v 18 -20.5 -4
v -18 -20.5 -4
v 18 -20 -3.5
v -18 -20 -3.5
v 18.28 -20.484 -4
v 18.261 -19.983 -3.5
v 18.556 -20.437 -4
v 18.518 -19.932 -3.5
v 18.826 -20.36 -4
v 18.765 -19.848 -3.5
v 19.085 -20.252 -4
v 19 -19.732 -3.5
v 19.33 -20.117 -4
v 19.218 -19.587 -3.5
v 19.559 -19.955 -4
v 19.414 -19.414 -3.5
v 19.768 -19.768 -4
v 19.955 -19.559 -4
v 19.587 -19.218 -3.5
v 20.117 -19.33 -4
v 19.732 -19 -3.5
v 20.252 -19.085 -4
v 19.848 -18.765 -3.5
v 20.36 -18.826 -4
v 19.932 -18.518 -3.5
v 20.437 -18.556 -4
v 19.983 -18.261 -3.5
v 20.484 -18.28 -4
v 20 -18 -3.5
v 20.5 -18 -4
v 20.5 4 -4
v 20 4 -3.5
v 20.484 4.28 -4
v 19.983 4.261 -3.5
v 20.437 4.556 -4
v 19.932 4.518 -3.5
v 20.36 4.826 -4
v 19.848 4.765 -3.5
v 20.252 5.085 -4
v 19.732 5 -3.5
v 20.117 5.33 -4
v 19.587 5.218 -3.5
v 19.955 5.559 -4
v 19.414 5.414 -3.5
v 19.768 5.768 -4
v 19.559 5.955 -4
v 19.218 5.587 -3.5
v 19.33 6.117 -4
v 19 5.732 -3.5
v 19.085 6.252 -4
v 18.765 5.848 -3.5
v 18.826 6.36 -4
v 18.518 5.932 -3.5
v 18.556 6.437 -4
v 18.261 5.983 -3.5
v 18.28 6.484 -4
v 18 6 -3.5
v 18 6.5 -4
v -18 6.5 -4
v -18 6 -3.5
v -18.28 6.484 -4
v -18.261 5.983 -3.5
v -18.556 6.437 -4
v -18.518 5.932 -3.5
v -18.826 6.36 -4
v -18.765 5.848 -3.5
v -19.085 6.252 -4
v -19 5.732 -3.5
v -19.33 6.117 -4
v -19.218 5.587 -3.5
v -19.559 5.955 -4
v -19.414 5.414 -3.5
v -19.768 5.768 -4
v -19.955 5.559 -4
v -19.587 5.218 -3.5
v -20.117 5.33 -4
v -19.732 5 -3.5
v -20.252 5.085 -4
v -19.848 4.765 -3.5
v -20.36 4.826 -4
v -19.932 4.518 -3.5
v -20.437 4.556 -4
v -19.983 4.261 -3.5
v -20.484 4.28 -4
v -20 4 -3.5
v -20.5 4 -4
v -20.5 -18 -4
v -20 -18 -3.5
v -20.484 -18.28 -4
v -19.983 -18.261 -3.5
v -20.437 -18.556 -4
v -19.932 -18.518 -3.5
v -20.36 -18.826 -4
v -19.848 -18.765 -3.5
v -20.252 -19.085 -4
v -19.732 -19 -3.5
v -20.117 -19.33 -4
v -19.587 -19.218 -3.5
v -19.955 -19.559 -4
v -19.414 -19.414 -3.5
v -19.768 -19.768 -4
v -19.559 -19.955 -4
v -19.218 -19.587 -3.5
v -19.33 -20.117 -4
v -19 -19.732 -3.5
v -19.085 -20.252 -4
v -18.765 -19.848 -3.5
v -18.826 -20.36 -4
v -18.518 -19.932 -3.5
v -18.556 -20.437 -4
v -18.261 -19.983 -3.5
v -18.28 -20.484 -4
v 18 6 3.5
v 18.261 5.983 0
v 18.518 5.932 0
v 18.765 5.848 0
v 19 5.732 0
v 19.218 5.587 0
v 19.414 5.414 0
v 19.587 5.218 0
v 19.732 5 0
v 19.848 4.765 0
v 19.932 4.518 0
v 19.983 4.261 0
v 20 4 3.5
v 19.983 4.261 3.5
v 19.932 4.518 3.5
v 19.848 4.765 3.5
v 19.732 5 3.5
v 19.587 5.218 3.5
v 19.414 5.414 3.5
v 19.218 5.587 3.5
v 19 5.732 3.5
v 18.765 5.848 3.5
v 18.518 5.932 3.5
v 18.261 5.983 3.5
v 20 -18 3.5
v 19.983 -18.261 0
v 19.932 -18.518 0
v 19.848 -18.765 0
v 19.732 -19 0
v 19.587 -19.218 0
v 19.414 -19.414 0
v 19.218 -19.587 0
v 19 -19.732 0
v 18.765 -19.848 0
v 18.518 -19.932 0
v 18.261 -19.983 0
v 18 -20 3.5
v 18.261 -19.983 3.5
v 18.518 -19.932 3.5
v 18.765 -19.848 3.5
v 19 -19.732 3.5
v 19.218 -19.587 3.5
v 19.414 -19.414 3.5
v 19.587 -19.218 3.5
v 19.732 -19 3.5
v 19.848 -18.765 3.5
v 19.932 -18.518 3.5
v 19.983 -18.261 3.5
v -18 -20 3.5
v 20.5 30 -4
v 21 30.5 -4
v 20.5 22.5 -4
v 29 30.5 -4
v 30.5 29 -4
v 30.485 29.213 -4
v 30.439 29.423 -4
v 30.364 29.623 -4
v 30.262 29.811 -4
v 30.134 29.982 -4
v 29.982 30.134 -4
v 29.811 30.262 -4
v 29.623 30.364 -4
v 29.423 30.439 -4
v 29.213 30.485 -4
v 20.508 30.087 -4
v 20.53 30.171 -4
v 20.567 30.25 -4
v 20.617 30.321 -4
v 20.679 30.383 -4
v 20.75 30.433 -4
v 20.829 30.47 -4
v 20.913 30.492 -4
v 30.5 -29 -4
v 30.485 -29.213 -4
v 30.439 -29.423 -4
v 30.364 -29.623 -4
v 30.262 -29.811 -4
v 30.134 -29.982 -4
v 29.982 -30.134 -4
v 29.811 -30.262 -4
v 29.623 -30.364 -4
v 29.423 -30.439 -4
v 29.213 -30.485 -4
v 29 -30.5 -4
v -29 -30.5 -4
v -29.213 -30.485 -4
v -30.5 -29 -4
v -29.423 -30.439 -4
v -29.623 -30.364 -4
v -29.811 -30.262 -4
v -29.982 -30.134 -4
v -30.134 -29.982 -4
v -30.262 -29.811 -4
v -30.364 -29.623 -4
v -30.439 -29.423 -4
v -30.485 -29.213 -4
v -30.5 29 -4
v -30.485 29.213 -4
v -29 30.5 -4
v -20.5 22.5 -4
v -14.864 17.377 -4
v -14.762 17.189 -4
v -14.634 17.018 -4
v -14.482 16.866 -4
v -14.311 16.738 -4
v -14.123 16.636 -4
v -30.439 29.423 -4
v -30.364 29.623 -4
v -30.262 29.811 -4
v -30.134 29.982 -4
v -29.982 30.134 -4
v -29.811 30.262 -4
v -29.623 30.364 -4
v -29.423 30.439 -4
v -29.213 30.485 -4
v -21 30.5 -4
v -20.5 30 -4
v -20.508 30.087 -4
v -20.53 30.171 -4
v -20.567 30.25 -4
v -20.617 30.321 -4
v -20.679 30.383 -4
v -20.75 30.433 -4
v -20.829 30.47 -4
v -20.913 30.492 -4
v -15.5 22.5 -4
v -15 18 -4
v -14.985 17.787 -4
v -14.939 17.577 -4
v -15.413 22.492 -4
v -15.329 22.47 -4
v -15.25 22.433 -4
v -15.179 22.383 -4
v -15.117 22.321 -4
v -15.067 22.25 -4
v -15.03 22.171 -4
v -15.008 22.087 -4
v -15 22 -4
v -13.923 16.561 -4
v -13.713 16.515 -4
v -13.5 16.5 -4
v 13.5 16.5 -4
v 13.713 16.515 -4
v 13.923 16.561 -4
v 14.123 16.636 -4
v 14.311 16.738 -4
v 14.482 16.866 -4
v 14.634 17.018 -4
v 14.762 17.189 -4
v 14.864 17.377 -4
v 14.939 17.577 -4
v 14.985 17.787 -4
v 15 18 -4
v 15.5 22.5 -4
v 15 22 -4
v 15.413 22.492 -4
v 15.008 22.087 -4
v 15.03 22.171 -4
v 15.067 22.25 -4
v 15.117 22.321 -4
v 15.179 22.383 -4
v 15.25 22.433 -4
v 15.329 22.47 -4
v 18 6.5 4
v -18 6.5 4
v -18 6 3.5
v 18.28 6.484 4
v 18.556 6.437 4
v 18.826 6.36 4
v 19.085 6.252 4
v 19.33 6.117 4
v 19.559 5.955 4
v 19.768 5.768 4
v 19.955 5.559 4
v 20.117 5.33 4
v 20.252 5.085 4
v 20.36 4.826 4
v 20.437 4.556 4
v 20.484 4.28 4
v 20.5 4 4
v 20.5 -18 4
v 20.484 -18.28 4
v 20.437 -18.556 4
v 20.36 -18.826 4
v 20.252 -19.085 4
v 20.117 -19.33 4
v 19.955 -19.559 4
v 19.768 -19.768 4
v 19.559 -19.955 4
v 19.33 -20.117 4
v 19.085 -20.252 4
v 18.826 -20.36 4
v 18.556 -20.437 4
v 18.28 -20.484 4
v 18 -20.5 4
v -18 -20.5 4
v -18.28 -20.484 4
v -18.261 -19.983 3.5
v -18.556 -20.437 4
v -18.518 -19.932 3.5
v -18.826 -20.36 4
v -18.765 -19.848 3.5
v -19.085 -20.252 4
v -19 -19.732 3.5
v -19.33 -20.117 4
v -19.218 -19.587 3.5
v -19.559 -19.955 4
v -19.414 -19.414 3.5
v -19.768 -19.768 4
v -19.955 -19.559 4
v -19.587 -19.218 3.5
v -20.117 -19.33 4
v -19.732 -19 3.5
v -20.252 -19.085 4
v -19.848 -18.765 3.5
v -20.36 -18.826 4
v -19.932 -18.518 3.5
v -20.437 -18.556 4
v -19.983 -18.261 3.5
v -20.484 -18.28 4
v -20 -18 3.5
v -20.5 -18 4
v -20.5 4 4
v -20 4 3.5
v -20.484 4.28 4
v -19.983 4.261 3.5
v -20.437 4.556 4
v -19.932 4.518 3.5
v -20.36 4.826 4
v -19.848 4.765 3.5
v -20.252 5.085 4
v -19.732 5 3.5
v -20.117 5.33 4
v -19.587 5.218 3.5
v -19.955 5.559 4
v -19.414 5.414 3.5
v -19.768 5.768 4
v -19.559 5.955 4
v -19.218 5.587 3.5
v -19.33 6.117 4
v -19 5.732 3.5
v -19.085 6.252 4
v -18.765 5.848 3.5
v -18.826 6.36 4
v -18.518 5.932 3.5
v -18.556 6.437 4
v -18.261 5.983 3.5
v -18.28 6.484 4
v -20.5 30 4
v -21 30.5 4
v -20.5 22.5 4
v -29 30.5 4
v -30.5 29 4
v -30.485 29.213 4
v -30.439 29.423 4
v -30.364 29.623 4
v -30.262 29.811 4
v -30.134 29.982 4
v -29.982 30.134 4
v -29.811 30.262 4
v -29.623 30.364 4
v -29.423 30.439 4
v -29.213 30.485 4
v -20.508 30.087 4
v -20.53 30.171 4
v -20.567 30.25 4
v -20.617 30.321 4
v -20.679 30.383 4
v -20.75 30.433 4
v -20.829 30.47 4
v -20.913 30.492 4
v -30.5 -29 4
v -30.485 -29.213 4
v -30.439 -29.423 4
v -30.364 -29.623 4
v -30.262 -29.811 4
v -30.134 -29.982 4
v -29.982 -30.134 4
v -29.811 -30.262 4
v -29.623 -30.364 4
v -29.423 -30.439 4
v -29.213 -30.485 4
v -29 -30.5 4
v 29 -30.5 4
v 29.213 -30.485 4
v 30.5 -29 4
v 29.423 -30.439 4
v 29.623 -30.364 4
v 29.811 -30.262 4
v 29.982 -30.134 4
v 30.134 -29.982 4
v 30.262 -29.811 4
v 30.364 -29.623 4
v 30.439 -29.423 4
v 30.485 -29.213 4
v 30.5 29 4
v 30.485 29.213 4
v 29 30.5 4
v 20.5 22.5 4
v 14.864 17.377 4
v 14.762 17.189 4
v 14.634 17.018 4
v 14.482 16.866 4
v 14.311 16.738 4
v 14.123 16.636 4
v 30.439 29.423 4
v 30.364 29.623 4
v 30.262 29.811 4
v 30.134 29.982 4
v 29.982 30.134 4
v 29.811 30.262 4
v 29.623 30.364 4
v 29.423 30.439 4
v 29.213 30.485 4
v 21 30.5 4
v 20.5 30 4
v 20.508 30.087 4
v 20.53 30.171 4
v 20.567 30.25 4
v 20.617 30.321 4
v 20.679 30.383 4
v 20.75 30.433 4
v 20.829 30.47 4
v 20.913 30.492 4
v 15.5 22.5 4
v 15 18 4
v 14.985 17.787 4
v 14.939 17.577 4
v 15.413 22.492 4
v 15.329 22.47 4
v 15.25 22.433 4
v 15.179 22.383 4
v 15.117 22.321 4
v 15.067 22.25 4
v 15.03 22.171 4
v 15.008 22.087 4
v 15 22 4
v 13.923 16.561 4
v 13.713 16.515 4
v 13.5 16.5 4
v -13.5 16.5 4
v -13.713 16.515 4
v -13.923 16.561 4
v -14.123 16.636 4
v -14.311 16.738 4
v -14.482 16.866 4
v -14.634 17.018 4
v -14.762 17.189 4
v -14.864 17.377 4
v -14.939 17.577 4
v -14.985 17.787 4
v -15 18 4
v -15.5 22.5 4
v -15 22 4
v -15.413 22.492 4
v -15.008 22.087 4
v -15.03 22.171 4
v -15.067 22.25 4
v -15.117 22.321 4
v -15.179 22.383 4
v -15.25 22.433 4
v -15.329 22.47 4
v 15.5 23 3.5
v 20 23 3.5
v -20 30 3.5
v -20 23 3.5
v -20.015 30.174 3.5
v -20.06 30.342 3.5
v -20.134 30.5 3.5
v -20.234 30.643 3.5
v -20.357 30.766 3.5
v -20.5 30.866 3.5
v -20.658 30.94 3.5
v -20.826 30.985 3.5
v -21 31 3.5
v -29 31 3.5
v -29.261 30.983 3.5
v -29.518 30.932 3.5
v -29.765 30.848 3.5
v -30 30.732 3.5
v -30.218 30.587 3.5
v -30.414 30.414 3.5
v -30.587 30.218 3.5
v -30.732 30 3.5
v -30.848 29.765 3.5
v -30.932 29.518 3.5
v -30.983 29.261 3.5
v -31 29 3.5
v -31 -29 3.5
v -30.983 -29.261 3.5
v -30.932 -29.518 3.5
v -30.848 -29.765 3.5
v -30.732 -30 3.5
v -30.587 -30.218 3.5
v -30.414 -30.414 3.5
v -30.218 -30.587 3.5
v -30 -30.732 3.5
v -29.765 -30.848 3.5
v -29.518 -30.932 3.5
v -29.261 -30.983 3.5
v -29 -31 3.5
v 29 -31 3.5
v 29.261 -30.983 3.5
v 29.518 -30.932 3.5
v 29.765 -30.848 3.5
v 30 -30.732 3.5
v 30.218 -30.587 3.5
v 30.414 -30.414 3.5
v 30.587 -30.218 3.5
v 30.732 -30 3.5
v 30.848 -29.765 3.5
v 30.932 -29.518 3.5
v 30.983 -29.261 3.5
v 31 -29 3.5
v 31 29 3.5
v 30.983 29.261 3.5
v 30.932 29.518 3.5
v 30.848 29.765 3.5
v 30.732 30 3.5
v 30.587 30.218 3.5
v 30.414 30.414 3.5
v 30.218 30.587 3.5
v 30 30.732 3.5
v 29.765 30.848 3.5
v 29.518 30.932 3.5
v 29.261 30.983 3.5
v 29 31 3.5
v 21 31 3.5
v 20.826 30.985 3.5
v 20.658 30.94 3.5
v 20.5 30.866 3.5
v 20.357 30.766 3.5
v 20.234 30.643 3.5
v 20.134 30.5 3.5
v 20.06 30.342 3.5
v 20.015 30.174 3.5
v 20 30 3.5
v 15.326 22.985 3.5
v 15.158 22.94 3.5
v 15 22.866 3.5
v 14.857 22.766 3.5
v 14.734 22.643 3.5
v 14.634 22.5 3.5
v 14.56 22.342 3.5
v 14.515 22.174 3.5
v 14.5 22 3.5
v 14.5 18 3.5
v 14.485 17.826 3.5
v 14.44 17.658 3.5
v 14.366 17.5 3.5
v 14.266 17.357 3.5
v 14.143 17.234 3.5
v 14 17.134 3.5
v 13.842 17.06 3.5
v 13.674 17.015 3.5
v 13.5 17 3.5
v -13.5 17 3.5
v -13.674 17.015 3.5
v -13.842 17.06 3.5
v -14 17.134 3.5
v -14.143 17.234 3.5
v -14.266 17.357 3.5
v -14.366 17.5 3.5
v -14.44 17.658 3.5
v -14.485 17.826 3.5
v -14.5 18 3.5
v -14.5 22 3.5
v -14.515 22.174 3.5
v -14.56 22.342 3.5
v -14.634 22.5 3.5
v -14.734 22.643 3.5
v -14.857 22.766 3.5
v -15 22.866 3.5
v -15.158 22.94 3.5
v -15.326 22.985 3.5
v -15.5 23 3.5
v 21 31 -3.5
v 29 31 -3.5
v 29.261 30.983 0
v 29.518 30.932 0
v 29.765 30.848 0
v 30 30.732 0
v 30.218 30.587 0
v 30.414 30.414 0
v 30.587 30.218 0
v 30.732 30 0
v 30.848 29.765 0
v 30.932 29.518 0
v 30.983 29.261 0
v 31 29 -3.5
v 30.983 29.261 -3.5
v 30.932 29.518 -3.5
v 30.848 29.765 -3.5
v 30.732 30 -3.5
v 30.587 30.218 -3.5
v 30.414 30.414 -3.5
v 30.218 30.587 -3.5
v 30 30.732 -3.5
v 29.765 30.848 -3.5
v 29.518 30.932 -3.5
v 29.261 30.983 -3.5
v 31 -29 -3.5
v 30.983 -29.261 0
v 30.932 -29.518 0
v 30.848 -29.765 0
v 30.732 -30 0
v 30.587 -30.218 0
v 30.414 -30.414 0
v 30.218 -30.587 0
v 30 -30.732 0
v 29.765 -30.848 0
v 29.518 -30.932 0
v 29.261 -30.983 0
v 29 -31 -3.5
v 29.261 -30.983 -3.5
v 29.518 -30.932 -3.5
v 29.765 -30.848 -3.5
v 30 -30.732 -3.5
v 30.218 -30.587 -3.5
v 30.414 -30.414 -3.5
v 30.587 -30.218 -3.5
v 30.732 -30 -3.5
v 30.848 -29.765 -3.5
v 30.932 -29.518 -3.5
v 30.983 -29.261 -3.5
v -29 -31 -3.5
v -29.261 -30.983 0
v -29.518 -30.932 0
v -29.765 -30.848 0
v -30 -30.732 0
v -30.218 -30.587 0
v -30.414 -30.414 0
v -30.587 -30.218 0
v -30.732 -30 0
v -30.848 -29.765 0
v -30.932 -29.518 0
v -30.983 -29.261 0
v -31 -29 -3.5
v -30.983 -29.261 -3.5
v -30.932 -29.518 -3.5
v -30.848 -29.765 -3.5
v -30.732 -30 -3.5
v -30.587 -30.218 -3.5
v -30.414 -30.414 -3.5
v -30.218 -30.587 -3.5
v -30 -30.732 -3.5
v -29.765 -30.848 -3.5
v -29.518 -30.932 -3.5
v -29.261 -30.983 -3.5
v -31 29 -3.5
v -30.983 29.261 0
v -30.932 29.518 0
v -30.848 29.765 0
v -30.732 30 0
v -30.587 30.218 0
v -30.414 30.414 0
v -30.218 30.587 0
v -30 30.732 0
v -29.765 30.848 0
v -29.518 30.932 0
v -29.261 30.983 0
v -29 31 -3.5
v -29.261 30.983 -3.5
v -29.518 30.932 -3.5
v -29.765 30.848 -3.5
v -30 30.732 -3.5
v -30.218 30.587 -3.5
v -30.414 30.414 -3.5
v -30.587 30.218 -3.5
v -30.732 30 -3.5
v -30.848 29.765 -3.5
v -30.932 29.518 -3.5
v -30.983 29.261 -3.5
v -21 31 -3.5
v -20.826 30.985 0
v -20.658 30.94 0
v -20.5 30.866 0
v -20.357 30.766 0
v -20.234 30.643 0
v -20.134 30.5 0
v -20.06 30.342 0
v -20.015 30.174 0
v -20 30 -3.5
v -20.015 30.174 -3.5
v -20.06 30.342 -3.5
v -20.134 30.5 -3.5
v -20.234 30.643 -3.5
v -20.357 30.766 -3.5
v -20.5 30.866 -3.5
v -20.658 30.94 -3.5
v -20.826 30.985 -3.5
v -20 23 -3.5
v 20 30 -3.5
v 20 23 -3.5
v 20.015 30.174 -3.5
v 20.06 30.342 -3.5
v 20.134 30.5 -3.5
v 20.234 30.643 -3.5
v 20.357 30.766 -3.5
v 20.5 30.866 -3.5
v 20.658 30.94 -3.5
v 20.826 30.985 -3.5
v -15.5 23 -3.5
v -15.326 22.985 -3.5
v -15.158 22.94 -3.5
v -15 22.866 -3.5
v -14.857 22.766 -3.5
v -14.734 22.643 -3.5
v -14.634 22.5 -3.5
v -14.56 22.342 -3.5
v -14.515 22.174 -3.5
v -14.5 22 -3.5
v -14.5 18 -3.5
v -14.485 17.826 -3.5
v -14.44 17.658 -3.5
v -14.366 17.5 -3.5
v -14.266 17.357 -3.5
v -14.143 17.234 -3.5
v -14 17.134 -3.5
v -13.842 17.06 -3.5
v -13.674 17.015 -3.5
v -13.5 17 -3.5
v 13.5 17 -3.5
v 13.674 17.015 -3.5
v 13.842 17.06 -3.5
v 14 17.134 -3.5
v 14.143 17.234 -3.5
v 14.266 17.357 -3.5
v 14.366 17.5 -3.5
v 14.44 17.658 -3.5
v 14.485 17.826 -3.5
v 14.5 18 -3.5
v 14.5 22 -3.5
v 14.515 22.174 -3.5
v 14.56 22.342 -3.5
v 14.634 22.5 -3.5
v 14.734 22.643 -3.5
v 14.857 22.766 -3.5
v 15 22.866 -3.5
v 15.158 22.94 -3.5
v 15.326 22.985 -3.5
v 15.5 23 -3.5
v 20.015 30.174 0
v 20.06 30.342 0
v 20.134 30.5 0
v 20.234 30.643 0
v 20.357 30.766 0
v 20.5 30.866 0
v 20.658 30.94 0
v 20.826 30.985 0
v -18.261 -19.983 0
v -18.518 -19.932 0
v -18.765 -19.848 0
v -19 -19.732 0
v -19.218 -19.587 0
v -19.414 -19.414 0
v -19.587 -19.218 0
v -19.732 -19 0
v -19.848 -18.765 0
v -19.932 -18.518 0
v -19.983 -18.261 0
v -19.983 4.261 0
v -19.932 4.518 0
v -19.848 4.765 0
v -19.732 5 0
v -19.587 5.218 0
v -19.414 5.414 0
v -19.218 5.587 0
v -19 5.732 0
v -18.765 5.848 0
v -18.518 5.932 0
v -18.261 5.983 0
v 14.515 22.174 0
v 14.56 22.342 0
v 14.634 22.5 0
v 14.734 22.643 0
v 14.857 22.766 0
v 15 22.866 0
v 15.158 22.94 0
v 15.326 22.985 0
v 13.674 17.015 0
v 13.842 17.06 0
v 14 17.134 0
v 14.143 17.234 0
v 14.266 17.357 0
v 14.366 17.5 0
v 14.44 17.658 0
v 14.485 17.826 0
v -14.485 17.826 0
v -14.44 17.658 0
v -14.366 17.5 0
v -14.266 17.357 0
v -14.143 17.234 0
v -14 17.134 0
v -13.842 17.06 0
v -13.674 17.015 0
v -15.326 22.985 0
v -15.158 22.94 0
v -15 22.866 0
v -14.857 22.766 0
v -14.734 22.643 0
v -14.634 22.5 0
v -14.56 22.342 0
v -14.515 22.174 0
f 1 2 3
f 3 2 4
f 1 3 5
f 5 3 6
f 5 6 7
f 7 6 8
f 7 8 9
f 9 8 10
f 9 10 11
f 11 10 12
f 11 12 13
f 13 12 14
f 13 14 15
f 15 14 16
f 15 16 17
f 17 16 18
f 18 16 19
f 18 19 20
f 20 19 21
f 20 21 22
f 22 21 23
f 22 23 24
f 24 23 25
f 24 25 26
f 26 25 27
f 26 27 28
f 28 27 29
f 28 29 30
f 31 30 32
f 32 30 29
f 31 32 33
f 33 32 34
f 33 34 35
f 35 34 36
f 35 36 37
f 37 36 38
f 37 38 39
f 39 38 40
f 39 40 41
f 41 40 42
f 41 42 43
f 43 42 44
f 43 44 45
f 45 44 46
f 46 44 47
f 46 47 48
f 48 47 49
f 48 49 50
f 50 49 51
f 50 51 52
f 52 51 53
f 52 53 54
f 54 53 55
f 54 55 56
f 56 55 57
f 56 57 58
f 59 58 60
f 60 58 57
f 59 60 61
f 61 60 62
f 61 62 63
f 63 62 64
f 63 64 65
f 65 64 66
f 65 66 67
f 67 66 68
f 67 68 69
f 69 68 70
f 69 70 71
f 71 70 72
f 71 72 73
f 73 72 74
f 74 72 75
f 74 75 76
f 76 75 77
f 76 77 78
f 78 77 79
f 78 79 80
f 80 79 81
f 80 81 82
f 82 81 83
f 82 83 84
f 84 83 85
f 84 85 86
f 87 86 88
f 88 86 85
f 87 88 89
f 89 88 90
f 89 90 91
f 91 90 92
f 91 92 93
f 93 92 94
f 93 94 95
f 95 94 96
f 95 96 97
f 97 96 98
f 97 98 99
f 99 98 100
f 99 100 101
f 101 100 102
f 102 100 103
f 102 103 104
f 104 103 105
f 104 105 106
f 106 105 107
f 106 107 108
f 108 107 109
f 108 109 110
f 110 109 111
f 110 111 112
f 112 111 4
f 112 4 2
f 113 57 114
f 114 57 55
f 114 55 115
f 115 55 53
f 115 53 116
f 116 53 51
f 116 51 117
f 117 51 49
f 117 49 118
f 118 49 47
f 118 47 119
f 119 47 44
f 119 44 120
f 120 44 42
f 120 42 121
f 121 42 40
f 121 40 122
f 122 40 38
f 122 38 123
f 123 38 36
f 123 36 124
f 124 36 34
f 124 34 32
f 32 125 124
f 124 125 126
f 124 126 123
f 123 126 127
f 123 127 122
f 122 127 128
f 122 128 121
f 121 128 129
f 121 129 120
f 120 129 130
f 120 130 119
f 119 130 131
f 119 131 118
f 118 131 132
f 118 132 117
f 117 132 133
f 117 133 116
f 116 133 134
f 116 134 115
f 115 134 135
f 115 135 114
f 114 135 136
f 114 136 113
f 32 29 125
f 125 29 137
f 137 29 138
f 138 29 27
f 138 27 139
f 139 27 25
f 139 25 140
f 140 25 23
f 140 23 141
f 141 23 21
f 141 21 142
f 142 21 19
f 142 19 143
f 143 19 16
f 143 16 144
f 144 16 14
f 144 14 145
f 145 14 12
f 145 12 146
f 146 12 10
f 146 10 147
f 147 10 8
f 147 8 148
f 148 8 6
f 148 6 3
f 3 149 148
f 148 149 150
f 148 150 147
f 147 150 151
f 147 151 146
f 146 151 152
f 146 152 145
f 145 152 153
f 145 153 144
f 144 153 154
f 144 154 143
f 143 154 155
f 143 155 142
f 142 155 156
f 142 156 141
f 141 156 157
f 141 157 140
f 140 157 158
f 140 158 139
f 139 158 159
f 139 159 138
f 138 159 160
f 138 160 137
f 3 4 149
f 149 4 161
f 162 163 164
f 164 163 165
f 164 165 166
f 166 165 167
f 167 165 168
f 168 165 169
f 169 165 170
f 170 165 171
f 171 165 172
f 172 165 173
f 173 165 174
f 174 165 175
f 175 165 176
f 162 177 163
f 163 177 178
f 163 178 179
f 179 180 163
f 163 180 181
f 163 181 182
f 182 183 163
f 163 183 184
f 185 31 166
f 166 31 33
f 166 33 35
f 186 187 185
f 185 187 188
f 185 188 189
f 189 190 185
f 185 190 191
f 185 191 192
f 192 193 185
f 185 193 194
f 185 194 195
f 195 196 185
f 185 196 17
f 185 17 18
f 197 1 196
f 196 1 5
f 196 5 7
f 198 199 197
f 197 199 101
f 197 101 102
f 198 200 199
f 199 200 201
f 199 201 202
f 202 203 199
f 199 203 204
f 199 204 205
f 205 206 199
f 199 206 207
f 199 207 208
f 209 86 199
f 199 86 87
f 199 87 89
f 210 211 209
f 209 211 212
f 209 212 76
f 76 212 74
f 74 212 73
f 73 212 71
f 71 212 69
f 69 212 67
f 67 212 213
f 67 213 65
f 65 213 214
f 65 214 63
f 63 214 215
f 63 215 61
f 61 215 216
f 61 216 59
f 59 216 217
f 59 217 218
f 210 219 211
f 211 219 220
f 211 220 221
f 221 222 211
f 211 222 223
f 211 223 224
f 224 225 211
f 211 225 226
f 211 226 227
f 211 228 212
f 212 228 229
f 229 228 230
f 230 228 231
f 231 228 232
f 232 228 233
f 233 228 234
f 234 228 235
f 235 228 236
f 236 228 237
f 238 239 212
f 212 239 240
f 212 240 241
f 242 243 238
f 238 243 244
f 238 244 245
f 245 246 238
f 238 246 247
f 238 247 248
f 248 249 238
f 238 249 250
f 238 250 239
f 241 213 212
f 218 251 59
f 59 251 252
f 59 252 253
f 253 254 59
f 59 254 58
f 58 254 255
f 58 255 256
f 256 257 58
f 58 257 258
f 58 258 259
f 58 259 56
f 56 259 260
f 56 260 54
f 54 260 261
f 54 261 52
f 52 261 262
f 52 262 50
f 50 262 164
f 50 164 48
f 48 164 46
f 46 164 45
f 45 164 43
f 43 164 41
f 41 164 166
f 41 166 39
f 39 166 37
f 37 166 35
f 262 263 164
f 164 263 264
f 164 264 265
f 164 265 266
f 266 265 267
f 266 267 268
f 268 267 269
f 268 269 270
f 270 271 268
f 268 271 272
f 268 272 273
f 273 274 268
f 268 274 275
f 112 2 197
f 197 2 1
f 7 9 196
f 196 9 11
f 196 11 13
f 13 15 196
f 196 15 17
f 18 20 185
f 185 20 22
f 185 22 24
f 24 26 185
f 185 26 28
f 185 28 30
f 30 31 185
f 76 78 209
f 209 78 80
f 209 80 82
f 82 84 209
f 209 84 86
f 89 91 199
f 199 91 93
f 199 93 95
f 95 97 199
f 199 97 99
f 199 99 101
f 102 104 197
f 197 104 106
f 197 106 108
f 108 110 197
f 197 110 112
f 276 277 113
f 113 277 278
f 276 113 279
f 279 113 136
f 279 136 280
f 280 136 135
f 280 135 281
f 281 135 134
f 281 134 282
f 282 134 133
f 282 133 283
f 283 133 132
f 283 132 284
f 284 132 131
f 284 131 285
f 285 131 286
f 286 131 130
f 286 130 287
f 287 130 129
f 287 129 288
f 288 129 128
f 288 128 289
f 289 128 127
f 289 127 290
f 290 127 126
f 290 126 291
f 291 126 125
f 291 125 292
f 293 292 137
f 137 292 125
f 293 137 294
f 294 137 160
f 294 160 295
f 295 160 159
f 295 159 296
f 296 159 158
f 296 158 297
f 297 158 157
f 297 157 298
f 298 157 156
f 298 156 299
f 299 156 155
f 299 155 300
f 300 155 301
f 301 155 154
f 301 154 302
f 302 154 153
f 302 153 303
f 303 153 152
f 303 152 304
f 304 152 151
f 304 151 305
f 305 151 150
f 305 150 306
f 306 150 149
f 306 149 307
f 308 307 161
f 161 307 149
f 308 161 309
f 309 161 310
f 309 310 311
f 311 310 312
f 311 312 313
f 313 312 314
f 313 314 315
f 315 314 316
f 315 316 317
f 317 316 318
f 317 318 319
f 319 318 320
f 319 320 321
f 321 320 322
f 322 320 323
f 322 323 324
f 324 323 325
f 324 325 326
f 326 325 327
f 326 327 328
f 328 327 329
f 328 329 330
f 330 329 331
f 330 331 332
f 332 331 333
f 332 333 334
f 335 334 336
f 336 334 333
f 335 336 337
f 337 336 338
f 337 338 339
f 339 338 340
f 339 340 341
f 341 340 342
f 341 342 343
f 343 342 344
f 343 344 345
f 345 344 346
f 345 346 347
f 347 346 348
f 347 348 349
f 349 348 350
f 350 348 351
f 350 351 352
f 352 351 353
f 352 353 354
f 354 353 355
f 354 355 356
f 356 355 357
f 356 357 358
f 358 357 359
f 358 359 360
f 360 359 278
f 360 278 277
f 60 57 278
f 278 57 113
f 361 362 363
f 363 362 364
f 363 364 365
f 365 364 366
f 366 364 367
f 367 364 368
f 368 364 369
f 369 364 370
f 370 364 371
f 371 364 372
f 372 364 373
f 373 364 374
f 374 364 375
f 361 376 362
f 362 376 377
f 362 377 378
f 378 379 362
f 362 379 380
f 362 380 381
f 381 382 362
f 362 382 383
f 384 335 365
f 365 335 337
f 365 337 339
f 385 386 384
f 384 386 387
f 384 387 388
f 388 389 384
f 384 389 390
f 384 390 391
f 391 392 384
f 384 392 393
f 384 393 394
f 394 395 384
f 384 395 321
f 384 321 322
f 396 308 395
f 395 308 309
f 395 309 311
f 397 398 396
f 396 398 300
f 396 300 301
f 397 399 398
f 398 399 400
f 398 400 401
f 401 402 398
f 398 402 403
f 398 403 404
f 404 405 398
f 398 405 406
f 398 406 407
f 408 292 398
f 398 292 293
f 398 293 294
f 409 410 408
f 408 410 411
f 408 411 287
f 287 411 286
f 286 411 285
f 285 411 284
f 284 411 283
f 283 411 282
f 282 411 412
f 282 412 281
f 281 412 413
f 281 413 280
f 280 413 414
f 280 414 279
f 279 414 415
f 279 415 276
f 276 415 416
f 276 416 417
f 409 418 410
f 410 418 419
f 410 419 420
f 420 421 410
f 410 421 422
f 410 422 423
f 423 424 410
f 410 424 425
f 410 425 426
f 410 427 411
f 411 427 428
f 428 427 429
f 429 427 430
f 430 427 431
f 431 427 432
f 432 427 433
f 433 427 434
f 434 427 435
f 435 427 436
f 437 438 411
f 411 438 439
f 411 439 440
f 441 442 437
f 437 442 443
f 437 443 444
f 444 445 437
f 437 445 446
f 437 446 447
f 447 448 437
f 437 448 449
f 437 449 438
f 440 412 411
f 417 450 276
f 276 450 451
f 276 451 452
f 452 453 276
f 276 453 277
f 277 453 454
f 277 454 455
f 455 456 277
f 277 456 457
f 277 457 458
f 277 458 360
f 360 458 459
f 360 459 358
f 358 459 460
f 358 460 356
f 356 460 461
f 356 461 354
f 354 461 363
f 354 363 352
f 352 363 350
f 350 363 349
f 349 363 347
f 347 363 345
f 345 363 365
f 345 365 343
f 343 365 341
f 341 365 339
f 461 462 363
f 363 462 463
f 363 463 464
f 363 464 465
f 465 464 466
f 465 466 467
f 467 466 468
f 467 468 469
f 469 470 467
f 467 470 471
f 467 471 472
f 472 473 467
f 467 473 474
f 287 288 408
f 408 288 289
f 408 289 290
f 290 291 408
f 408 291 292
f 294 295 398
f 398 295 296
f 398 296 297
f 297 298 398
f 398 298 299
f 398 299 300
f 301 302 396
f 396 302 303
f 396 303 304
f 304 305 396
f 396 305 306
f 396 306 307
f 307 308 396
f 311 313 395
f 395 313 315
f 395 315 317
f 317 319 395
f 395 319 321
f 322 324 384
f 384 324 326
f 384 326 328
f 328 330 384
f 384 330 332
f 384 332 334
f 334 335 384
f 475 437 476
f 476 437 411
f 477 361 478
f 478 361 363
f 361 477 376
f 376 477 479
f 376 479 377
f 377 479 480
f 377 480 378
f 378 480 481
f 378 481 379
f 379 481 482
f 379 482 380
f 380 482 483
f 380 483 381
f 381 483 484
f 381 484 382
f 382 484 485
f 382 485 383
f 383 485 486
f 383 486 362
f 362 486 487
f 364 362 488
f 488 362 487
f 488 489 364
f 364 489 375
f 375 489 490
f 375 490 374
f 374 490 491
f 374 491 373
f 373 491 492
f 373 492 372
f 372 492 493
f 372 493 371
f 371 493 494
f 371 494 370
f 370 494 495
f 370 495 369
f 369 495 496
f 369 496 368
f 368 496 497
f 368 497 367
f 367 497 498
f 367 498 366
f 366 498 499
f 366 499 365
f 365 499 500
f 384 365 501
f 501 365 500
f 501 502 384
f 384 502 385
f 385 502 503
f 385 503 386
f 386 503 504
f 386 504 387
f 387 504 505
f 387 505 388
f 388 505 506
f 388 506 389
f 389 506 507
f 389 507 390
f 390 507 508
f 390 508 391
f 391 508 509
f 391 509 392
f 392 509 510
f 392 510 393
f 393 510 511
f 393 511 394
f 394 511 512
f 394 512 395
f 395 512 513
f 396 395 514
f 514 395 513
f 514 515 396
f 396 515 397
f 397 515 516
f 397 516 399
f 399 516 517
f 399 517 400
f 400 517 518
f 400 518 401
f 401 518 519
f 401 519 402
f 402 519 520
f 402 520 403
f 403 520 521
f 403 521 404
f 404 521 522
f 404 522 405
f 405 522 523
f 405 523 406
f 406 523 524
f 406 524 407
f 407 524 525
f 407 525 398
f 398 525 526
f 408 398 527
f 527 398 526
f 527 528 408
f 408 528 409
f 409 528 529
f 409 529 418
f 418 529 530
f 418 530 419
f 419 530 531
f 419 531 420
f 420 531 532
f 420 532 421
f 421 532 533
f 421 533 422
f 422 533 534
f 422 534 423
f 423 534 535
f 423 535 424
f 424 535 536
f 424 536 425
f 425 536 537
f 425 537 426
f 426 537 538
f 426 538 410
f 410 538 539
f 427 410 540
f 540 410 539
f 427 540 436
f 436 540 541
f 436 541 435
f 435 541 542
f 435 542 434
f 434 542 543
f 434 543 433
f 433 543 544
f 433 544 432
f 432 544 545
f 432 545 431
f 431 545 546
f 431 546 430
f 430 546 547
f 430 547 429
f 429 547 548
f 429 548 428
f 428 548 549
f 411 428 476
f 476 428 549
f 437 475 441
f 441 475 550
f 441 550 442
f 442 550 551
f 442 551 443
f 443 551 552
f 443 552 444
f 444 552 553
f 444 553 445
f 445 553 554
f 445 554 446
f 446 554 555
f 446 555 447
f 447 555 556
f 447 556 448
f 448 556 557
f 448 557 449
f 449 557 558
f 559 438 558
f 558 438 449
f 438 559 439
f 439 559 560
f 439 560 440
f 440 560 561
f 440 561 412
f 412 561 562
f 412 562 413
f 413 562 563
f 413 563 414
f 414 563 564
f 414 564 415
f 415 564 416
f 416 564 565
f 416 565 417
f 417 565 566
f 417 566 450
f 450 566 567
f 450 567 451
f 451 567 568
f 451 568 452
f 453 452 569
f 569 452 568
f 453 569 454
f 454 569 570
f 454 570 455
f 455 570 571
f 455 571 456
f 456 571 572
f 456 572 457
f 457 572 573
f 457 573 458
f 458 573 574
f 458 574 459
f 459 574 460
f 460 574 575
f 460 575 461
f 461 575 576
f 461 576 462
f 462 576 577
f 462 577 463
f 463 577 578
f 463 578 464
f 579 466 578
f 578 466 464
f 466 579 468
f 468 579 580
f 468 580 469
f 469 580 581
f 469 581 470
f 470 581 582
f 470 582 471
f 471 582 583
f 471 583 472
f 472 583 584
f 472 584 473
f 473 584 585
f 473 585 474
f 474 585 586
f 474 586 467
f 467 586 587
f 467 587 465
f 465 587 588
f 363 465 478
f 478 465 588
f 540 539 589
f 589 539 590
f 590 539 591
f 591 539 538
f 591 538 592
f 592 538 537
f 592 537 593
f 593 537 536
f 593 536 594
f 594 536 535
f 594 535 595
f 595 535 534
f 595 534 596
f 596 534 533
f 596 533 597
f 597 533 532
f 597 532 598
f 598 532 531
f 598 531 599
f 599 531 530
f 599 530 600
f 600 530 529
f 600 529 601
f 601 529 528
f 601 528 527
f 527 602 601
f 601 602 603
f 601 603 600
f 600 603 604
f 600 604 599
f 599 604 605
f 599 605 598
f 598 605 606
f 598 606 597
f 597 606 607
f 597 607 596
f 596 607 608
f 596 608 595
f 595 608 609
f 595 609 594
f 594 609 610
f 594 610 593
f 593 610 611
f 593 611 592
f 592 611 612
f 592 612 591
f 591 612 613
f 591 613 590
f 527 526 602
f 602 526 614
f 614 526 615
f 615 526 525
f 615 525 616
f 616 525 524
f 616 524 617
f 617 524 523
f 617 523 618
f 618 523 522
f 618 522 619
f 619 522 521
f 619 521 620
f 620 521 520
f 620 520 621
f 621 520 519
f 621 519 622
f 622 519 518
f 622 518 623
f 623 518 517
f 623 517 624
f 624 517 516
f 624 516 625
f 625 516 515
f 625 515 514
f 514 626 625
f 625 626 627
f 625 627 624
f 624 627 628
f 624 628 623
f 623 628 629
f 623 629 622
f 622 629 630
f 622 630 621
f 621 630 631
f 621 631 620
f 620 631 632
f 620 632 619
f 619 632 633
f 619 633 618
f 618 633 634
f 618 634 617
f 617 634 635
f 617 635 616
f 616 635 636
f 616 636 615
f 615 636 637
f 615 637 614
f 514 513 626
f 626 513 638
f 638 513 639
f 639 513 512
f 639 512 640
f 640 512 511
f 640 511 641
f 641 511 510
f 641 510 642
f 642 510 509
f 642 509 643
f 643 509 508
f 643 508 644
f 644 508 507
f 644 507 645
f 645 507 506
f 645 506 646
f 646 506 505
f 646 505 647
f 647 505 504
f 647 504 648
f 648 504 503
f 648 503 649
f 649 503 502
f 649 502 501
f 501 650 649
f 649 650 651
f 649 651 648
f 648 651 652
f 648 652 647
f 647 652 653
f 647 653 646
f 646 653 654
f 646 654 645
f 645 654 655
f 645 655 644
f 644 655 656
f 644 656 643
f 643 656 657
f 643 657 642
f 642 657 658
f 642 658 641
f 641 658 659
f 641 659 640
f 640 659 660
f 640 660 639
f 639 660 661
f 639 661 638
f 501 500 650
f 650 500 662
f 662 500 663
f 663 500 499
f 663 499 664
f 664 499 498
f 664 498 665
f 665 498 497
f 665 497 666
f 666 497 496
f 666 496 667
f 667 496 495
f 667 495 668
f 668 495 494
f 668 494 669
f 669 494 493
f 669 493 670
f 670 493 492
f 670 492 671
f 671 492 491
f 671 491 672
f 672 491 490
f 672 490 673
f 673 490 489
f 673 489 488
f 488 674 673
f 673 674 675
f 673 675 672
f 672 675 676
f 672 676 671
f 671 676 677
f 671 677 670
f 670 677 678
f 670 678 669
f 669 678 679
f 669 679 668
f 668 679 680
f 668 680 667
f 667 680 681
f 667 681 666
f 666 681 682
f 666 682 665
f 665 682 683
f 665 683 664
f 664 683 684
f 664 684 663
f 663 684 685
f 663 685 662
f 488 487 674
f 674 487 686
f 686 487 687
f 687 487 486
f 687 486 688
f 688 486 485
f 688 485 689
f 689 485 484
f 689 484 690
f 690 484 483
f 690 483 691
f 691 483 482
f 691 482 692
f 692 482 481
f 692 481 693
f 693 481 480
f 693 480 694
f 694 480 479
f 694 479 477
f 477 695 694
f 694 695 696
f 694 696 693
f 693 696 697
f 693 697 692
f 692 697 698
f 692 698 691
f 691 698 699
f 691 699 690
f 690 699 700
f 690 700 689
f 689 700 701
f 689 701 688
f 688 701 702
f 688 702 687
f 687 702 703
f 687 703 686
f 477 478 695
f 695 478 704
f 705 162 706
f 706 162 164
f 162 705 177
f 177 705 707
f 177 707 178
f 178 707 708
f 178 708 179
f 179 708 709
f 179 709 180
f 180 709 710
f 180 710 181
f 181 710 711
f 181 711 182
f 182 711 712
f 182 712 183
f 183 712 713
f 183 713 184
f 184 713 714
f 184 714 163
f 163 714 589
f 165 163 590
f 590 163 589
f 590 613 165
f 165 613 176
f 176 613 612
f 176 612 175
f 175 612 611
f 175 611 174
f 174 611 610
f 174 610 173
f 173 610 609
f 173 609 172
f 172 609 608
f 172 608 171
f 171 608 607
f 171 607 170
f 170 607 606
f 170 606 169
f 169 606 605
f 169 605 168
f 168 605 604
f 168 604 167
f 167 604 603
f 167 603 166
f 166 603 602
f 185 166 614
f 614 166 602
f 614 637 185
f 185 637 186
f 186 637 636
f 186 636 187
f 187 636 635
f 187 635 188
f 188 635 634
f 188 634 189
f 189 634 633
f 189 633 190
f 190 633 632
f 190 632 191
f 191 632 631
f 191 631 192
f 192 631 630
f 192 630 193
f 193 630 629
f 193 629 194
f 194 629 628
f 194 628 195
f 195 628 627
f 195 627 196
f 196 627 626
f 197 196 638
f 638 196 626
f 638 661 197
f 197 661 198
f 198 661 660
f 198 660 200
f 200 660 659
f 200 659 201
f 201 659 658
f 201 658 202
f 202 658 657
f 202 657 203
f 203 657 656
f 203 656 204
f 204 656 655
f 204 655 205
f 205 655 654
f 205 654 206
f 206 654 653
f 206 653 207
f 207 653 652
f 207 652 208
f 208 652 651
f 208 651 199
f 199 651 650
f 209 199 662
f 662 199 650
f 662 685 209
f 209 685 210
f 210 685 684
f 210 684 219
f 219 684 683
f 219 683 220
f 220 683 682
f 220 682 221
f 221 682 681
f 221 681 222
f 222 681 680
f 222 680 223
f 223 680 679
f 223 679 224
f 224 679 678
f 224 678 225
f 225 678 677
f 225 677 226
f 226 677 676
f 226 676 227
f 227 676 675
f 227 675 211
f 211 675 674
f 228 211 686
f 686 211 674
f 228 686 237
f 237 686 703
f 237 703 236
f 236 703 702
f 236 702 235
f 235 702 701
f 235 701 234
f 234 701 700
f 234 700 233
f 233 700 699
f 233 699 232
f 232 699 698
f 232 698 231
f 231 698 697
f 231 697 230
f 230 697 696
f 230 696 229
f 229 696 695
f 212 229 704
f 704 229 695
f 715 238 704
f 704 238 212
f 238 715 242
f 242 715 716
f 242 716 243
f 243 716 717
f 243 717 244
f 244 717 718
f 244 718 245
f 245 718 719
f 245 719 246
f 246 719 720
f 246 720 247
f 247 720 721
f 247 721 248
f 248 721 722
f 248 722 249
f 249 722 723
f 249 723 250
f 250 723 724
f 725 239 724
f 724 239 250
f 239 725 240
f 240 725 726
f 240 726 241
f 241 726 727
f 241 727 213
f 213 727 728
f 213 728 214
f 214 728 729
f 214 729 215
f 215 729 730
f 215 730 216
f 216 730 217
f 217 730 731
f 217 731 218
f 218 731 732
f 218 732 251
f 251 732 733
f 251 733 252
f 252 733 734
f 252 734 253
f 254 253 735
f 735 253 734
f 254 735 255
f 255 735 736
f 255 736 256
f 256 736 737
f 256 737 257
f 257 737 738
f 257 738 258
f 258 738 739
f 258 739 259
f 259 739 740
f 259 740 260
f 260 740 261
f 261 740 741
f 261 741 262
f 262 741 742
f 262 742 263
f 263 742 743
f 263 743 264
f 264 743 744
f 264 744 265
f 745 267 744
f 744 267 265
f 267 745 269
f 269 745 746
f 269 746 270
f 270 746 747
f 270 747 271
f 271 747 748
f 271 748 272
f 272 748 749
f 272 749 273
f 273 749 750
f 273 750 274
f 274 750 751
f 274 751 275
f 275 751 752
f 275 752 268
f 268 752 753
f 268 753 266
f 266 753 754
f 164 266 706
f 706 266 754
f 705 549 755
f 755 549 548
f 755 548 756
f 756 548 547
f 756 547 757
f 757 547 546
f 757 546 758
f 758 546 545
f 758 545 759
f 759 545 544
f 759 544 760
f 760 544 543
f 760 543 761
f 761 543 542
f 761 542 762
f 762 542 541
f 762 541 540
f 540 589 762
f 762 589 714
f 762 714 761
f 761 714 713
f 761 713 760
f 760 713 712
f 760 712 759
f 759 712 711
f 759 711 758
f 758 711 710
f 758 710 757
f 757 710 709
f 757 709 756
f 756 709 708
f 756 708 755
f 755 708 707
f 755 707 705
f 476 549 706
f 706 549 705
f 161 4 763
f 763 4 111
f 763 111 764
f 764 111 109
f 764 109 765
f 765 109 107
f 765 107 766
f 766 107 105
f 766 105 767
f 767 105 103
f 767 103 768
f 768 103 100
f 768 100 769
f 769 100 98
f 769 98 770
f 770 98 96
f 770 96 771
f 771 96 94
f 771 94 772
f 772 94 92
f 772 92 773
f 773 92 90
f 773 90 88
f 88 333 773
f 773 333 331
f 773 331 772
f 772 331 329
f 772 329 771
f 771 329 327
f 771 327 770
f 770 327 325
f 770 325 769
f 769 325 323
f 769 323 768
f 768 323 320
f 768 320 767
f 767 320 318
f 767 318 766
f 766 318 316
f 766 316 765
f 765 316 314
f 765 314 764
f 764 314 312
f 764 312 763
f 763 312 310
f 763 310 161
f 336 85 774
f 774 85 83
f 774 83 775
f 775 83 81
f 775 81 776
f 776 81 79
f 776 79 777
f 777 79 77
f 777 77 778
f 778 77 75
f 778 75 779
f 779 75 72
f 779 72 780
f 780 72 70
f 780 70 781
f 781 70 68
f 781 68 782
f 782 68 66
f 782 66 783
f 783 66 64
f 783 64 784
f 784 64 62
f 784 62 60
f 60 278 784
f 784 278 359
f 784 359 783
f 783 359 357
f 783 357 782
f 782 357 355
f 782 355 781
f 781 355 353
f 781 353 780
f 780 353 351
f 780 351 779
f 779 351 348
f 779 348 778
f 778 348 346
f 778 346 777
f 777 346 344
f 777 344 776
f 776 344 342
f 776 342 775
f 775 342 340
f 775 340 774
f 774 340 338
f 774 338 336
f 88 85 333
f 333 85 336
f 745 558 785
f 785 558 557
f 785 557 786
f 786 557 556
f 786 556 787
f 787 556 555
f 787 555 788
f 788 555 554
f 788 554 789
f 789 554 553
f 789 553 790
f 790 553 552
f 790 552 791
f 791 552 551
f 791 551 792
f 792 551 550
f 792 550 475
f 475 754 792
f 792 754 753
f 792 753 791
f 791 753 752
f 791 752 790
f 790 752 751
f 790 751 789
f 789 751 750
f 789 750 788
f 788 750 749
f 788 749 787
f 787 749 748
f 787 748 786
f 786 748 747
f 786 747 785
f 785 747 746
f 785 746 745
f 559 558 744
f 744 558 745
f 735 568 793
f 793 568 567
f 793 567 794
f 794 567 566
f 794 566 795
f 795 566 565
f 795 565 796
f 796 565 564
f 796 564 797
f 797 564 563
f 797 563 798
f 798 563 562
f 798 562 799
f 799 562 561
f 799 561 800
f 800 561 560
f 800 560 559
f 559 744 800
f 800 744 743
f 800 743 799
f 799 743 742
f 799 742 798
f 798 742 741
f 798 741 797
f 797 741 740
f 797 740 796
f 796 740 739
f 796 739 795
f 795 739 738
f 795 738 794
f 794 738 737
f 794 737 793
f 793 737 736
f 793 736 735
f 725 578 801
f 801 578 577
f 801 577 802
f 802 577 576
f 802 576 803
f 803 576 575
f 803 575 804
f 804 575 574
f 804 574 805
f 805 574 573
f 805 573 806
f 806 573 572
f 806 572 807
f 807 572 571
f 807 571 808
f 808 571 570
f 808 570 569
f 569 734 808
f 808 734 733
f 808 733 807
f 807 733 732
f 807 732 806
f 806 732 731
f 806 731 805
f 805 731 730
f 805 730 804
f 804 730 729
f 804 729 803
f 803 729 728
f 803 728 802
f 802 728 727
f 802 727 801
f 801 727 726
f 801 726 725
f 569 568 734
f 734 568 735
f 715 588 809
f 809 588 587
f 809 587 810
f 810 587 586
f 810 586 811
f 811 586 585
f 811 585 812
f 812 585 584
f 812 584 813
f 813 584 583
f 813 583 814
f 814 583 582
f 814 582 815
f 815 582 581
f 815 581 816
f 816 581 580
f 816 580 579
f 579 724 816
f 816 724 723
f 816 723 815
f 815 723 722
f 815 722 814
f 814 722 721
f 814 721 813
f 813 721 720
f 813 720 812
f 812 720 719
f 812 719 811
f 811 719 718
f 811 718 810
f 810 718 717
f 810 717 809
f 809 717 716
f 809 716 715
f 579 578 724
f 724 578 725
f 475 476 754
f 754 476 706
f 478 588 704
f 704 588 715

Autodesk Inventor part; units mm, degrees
ref_plane "YZ Plane" through (0, 0, 0) normal (1, 0, 0) x (0, 1, 0)
ref_plane "XZ Plane" through (0, 0, 0) normal (0, 1, 0) x (-1, 0, 0)
ref_plane "XY Plane" through (0, 0, 0) normal (0, 0, 1) x (1, 0, 0)
sketch "スケッチ1" plane through (0, 0, 0) normal (0, 0, 1) x (1, 0, 0)
  line L0 (-31, -31) -> (31, -31)
  line L1 (31, -31) -> (31, 31)
  line L2 (31, 31) -> (-31, 31)
  line L3 (-31, 31) -> (-31, -31)
  line L4 (-31, -31) -> (31, 31) construction
  line L5 (31, -31) -> (-31, 31) construction
  point P0 (0, 0)
  dimension "d0" = 62
  dimension "d1" = 62
extrude "押し出し1" add sketch "スケッチ1" along normal mid plane 8
sketch "スケッチ2" plane through (0, 0, 4) normal (0, 0, 1) x (1, 0, 0)
  line L0 (-20, 23) -> (20, 23)
  line L1 (20, 23) -> (20, 31)
  line L2 (20, 31) -> (-20, 31)
  line L3 (-20, 31) -> (-20, 23)
  line L4 (-20, 23) -> (20, 31) construction
  line L5 (20, 23) -> (-20, 31) construction
  line L6 (31, 31) -> (-31, 31) projected
  line L7 (-14.5, 17) -> (14.5, 17)
  line L8 (14.5, 17) -> (14.5, 23)
  line L9 (14.5, 23) -> (-14.5, 23)
  line L10 (-14.5, 23) -> (-14.5, 17)
  line L11 (-14.5, 17) -> (14.5, 23) construction
  line L12 (14.5, 17) -> (-14.5, 23) construction
  point P0 (0, 0)
  point P1 (0, 27)
  point P2 (0, 27)
  point P3 (0, 20)
  point P4 (0, 20)
  point P5 (0, 27)
  point P6 (14.5, 23)
  dimension "d4" = 40
  dimension "d5" = 8
  dimension "d14" = 29
  dimension "d15" = 6
extrude "押し出し2" cut sketch "スケッチ2" against normal blind 10
sketch "スケッチ3" plane through (0, 0, 4) normal (0, 0, 1) x (1, 0, 0)
  line L0 (-20, -20) -> (20, -20)
  line L1 (20, -20) -> (20, 6)
  line L2 (20, 6) -> (-20, 6)
  line L3 (-20, 6) -> (-20, -20)
  line L4 (-20, -20) -> (20, 6) construction
  line L5 (20, -20) -> (-20, 6) construction
  line L6 (-31, 31) -> (-31, -31) projected
  line L7 (-31, -31) -> (31, -31) projected
  line L8 (14.5, 17) -> (-14.5, 17) projected
  point P0 (0, 0)
  point P1 (0, -7)
  point P2 (0, -7)
  dimension "d10" = 11
  dimension "d11" = 11
  dimension "d16" = 11
extrude "押し出し3" cut sketch "スケッチ3" against normal through all
fillet "フィレット2" radius 1 6 edges at (-14.5, 23, 0) (-14.5, 17, 0) (14.5, 17, 0) (14.5, 23, 0) (-20, 31, 0) (20, 31, 0)
fillet "フィレット3" radius 2 4 edges at (-31, 31, 0) (-31, -31, 0) (31, -31, 0) (31, 31, 0)
fillet "フィレット4" radius 2 4 edges at (-20, 6, 0) (-20, -20, 0) (20, -20, 0) (20, 6, 0)
chamfer "面取り1" distance 0.5 angle 45 60 edges at (31, 0, -4) (30.4142, -30.4142, -4) (0, -31, -4) (-30.4142, -30.4142, -4) (-31, 0, -4) (-30.4142, 30.4142, -4) (-25, 31, -4) (-20.2929, 30.7071, -4) (-20, 26.5, -4) (30.4142, 30.4142, -4) (25, 31, -4) (20.2929, 30.7071, -4) (20, 26.5, -4) (31, 0, 4) (30.4142, 30.4142, 4) (25, 31, 4) (20.2929, 30.7071, 4) (20, 26.5, 4) (30.4142, -30.4142, 4) (0, -31, 4) (-30.4142, -30.4142, 4) (-31, 0, 4) (-30.4142, 30.4142, 4) (-25, 31, 4) (-20.2929, 30.7071, 4) (-20, 26.5, 4) (17.75, 23, -4) (14.7929, 22.7071, -4) (14.5, 20, -4) (14.2071, 17.2929, -4) (0, 17, -4) (-14.2071, 17.2929, -4) (-14.5, 20, -4) (-14.7929, 22.7071, -4) (-17.75, 23, -4) (17.75, 23, 4) (14.7929, 22.7071, 4) (14.5, 20, 4) (14.2071, 17.2929, 4) (0, 17, 4) (-14.2071, 17.2929, 4) (-14.5, 20, 4) (-14.7929, 22.7071, 4) (-17.75, 23, 4) (0, 6, 4) (19.4142, 5.4142, 4) (20, -7, 4) (19.4142, -19.4142, 4) (0, -20, 4) (-19.4142, -19.4142, 4) (-20, -7, 4) (-19.4142, 5.4142, 4) (0, -20, -4) (19.4142, -19.4142, -4) (20, -7, -4) (19.4142, 5.4142, -4) (0, 6, -4) (-19.4142, 5.4142, -4) (-20, -7, -4) (-19.4142, -19.4142, -4)
properties part number "scara-base29" material "ABS プラスチック"
